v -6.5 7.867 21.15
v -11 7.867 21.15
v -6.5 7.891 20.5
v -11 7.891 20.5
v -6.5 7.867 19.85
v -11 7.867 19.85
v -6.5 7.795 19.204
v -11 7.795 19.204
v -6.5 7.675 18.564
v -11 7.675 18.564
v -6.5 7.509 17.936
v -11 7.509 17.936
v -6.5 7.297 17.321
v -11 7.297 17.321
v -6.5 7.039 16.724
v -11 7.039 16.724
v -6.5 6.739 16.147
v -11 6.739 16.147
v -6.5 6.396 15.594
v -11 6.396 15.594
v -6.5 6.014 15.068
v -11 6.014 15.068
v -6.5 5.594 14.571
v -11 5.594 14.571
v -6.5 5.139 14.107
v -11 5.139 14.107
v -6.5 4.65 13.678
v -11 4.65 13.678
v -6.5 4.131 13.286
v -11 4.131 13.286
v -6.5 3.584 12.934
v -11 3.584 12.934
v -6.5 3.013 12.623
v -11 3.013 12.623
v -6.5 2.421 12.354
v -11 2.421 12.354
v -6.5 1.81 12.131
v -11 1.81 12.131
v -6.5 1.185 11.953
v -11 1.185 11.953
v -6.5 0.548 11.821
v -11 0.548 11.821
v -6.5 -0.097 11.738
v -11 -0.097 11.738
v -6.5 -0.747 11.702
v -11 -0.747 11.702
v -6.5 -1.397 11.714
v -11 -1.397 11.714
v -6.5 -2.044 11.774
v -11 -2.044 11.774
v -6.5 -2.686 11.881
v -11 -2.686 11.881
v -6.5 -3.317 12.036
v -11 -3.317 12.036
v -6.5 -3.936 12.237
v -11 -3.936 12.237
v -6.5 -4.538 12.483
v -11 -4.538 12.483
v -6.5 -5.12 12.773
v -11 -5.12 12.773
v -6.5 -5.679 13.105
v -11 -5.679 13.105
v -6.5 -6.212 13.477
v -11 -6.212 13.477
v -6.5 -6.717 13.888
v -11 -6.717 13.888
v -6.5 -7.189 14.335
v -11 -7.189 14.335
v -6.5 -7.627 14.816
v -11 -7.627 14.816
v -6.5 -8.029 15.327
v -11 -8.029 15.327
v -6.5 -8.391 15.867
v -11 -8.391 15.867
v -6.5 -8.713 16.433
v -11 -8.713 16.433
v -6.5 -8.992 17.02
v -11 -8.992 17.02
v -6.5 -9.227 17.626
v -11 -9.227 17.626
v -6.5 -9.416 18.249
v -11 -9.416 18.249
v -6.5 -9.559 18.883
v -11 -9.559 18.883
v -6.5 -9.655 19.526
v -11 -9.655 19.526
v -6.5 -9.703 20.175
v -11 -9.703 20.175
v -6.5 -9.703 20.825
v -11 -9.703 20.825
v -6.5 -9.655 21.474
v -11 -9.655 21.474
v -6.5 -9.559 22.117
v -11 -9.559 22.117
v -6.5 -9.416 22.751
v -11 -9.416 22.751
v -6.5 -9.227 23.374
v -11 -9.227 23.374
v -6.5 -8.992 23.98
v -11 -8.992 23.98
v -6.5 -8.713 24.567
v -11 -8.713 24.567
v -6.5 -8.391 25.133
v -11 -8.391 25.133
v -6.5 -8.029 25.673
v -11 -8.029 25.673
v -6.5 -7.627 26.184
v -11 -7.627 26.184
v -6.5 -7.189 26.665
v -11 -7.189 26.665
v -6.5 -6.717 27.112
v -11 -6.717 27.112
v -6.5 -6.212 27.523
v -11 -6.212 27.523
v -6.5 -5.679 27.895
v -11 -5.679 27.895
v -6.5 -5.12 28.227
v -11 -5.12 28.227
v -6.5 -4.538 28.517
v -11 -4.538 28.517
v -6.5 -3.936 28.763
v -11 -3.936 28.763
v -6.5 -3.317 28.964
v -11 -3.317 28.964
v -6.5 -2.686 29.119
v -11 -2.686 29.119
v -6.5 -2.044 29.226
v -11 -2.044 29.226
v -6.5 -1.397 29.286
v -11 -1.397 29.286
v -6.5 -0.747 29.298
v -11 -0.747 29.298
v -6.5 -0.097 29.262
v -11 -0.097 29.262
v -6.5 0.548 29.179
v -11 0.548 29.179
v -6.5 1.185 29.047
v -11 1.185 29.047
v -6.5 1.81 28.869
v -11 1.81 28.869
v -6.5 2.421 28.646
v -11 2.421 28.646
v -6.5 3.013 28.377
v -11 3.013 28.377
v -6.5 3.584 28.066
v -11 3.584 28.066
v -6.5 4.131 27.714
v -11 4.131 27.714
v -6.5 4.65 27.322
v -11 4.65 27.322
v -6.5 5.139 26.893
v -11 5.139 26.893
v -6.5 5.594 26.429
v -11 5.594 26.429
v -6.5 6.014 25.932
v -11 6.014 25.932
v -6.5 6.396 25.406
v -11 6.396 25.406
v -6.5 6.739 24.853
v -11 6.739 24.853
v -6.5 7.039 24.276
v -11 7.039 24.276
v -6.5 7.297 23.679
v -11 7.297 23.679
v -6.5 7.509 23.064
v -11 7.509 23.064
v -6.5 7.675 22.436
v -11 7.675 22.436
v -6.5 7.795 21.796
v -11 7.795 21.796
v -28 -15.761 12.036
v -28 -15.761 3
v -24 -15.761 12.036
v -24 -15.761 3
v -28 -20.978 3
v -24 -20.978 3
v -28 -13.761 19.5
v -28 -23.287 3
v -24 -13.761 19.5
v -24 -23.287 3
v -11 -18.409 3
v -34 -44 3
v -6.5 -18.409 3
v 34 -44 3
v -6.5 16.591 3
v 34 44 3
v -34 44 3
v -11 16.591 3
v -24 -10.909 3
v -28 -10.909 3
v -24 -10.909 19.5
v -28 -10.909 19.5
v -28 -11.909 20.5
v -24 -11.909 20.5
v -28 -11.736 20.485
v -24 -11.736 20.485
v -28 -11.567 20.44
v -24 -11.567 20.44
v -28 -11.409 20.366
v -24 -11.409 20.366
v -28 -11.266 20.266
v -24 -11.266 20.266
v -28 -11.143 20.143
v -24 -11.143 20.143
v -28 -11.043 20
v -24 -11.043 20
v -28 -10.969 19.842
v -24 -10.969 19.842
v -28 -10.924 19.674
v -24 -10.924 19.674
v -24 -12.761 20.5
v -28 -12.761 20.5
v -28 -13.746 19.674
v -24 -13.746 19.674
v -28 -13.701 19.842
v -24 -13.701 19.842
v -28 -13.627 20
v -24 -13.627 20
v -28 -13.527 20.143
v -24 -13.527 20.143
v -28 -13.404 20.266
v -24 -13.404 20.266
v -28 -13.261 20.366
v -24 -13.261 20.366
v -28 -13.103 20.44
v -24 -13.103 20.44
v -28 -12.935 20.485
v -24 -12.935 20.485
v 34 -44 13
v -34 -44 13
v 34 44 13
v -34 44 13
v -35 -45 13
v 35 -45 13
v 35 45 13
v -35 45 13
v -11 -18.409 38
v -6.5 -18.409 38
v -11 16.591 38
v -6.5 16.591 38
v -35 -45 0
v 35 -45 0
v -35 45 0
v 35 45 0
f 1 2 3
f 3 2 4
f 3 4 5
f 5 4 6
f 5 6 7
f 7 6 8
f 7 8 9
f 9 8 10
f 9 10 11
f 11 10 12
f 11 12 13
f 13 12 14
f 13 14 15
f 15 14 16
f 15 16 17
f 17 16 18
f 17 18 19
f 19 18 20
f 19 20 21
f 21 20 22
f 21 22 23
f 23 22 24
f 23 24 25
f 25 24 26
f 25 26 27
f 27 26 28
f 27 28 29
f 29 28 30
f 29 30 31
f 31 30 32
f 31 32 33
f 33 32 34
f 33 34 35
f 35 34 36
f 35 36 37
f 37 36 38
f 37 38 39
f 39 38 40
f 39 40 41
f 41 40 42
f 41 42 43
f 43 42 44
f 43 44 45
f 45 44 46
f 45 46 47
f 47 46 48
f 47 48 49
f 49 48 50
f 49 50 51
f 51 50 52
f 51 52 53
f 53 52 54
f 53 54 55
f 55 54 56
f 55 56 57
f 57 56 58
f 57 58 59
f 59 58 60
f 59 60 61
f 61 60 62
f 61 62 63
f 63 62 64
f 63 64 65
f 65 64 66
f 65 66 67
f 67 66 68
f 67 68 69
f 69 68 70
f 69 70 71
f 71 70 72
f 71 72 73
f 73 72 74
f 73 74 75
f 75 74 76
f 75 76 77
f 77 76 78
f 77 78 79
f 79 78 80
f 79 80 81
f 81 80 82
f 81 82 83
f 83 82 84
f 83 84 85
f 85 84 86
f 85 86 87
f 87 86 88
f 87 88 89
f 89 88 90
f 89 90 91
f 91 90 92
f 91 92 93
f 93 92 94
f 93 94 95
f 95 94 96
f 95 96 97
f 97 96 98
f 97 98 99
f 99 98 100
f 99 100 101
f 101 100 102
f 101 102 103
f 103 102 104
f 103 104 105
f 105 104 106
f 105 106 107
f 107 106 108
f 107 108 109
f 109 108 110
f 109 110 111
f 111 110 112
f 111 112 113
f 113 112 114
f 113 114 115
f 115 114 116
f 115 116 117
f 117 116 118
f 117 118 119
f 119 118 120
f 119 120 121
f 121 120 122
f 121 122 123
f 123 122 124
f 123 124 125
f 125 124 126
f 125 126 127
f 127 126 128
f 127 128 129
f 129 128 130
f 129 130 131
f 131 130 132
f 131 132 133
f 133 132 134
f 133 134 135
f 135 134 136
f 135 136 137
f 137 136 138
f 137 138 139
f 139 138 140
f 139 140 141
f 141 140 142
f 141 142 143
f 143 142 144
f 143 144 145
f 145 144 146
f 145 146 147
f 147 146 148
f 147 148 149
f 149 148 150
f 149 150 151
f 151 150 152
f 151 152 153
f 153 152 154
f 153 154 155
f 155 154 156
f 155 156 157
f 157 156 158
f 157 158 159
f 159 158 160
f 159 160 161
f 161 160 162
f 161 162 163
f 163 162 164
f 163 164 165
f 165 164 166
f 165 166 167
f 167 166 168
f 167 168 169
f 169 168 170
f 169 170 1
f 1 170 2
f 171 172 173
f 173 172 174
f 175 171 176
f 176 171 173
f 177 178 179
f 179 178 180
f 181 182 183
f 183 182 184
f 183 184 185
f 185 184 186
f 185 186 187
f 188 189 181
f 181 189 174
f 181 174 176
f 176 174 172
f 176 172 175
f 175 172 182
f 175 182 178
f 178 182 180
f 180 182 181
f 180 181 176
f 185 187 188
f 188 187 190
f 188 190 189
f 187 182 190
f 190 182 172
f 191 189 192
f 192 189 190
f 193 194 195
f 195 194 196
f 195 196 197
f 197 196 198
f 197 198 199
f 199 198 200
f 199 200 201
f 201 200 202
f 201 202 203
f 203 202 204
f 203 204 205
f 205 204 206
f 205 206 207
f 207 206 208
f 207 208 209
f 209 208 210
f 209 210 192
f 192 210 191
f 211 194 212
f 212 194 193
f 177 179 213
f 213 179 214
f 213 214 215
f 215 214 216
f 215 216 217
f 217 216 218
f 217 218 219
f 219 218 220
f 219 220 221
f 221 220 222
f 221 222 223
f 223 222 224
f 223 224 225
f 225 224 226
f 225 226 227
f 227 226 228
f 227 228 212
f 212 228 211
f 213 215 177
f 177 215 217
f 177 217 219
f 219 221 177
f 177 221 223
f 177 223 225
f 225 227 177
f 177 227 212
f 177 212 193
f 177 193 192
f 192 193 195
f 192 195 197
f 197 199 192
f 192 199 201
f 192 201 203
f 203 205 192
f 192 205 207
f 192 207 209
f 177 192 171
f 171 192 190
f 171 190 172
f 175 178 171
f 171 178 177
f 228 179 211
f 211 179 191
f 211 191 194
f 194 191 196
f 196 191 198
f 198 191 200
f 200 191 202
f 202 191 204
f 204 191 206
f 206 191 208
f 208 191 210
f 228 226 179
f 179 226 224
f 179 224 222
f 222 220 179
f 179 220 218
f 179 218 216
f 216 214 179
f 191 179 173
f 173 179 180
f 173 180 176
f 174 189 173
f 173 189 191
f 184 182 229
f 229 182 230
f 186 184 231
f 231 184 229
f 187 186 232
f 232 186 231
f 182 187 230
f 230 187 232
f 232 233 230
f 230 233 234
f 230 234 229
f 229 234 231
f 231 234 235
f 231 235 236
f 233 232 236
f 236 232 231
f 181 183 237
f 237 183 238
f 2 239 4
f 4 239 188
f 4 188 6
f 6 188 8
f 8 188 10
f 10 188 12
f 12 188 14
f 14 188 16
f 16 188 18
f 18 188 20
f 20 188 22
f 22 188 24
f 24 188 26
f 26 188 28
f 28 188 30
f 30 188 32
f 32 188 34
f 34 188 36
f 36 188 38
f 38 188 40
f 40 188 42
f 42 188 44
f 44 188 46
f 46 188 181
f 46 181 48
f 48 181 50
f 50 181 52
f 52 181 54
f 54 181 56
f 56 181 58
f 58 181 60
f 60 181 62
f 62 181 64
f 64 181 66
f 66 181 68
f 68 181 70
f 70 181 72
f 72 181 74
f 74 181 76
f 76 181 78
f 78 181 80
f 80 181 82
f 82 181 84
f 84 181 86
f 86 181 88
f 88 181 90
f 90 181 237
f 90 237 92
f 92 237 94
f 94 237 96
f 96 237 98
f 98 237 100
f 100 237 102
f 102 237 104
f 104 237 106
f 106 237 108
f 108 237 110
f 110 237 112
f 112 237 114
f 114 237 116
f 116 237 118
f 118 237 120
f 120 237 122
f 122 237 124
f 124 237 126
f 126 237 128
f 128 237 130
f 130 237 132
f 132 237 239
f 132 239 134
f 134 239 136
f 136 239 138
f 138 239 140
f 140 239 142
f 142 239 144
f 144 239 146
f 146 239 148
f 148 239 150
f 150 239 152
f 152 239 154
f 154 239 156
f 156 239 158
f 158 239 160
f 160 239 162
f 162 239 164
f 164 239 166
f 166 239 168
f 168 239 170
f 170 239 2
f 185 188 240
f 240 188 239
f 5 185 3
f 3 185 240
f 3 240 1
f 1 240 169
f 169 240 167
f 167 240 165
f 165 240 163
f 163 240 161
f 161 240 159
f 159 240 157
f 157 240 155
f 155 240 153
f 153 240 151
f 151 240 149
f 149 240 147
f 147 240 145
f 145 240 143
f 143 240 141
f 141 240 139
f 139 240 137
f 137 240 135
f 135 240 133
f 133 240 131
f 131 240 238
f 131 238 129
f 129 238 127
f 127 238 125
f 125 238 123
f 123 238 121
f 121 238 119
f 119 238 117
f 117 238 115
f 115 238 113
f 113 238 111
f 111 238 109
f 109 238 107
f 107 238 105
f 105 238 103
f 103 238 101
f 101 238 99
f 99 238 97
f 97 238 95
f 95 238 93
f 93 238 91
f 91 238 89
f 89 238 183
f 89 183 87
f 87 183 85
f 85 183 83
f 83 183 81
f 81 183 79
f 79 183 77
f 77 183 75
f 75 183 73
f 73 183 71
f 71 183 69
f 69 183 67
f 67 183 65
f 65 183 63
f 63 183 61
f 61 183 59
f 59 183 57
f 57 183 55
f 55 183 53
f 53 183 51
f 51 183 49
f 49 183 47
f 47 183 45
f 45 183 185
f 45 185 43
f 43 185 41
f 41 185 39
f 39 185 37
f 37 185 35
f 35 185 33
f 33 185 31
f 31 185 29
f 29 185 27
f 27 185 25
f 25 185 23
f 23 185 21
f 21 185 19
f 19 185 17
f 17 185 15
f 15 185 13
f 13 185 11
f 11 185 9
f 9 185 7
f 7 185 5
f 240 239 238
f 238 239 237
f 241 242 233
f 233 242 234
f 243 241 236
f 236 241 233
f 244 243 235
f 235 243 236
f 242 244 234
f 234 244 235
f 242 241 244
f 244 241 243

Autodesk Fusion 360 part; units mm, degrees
sketch "Sketch1" plane through (0, 0, 0) normal (0, 0, 1) x (1, 0, 0)
  line L0 (35, 45) -> (-35, 45)
  line L1 (-35, 45) -> (-35, -45)
  line L2 (-35, -45) -> (35, -45)
  line L3 (35, -45) -> (35, 45)
  line L4 (35, 45) -> (-35, -45) construction
  line L5 (-35, 45) -> (35, -45) construction
  line L6 (0, 28.3109) -> (0, -26.5165) construction
  line L7 (-6.5, 15) -> (-6.5, -16.8183) construction
  dimension "d1" = 70
  dimension "d2" = 90
  dimension "d3" = 6.5
extrude "Extrude1" add sketch "Sketch1" along normal blind 3 makes body 1
sketch "Sketch2" plane through (0, 0, 3) normal (0, 0, 1) x (-1, 0, 0)
  line L0 (-35, 45) -> (-35, -45)
  line L1 (-35, -45) -> (35, -45)
  line L2 (35, -45) -> (35, 45)
  line L3 (35, 45) -> (-35, 45)
  line L4 (6.5, 18.4092) -> (11, 18.4092)
  line L5 (11, 18.4092) -> (11, -16.5908)
  line L6 (11, -16.5908) -> (6.5, -16.5908)
  line L7 (6.5, -16.5908) -> (6.5, 18.4092)
  line L8 (6.5, -15) -> (6.5, 16.8183)
  dimension "d6" = 4.5
  dimension "d7" = 35
extrude "Extrude2" add sketch "Sketch2" along normal blind 35 contours L4 L5 L6 L7 L8 bodies 1
sketch "Sketch3" plane through (0, 0, 3) normal (0, 0, 1) x (-1, 0, 0)
  line L0 (6.5, 18.4092) -> (11, 18.4092)
  line L1 (11, 18.4092) -> (11, -16.5908)
  line L2 (11, -16.5908) -> (6.5, -16.5908)
  line L3 (6.5, -16.5908) -> (6.5, 18.4092)
  line L4 (-35, 45) -> (-35, -45)
  line L5 (-35, -45) -> (35, -45)
  line L6 (35, -45) -> (35, 45)
  line L7 (35, 45) -> (-35, 45)
  line L8 (34, 44) -> (-34, 44)
  line L9 (-34, 44) -> (-34, -44)
  line L10 (-34, -44) -> (34, -44)
  line L11 (34, -44) -> (34, 44)
  line L12 (34, 44) -> (-34, -44) construction
  line L13 (-34, 44) -> (34, -44) construction
  dimension "d10" = 68
  dimension "d11" = 88
extrude "Extrude3" add sketch "Sketch3" along normal blind 10 contours L4 L5 L6 L7 bodies 1
sketch "Sketch4" plane through (-11, 0, 0) normal (-1, 0, 0) x (0, -1, 0)
  line L0 (-16.5908, 3) -> (18.4092, 3)
  line L1 (18.4092, 3) -> (18.4092, 38)
  line L2 (18.4092, 38) -> (-16.5908, 38)
  line L3 (-16.5908, 38) -> (-16.5908, 3)
  circle A0 centre (0.9092, 20.5) radius 8.8
  line L4 (-16.5908, 3) -> (-16.5908, 38)
  line L5 (-16.5908, 38) -> (18.4092, 38)
  line L6 (18.4092, 3) -> (18.4092, 38)
  line L7 (18.4092, 3) -> (-16.5908, 3)
  line L8 (-16.5908, 38) -> (18.4092, 3) construction
  line L9 (10.9092, 3) -> (13.7611, 3)
  line L10 (13.7611, 3) -> (13.7611, 19.5)
  line L11 (12.7611, 20.5) -> (11.9092, 20.5)
  line L12 (10.9092, 19.5) -> (10.9092, 3)
  line L13 (-5.4652, 20.5) -> (30.4752, 20.5) construction
  arc A1 (11.9092, 20.5) -> (10.9092, 19.5) centre (11.9092, 19.5) ccw
  arc A2 (13.7611, 19.5) -> (12.7611, 20.5) centre (12.7611, 19.5) ccw
  dimension "d14" = 17.6
  dimension "d15" = 10
  dimension "d16" = 1
extrude "Extrude4" add sketch "Sketch4" along normal blind 4 separate body contours L0 L7 L9 L10 L11 L12 A1 A2 makes body 2
move_body "Move1" bodies 2 to x (1, 0, 0) y (0, 1, 0) z (0, 0, 1) at (-13, 0, 0)
sketch "Sketch5" plane through (-28, 0, 0) normal (-1, 0, 0) x (0, -1, 0)
  arc A0 (13.7611, 19.5) -> (12.7611, 20.5) centre (12.7611, 19.5) ccw
  line L0 (12.7611, 20.5) -> (11.9092, 20.5)
  arc A1 (11.9092, 20.5) -> (10.9092, 19.5) centre (11.9092, 19.5) ccw
  line L1 (10.9092, 19.5) -> (10.9092, 3)
  line L2 (10.9092, 3) -> (13.7611, 3)
  line L3 (13.7611, 3) -> (13.7611, 19.5)
  line L4 (13.7611, 19.5) -> (23.2874, 3)
  line L5 (13.7611, 19.5) -> (32.9491, 19.5) construction
  line L6 (23.2874, 3) -> (10.9092, 3)
  line L7 (13.7611, 19.5) -> (13.7611, 3)
  line L8 (15.7611, 12.0359) -> (21.5554, 2)
  line L9 (15.7611, 12.0359) -> (15.7611, 3)
  dimension "d19" = 60
  dimension "d20" = -2
extrude "Extrude5" add sketch "Sketch5" against normal blind 4 contours L3 L4 L6 L7 L8 L9 bodies 1 2
extrude "Extrude6" cut sketch "Sketch4" against normal blind 6 contours A0 bodies 1
